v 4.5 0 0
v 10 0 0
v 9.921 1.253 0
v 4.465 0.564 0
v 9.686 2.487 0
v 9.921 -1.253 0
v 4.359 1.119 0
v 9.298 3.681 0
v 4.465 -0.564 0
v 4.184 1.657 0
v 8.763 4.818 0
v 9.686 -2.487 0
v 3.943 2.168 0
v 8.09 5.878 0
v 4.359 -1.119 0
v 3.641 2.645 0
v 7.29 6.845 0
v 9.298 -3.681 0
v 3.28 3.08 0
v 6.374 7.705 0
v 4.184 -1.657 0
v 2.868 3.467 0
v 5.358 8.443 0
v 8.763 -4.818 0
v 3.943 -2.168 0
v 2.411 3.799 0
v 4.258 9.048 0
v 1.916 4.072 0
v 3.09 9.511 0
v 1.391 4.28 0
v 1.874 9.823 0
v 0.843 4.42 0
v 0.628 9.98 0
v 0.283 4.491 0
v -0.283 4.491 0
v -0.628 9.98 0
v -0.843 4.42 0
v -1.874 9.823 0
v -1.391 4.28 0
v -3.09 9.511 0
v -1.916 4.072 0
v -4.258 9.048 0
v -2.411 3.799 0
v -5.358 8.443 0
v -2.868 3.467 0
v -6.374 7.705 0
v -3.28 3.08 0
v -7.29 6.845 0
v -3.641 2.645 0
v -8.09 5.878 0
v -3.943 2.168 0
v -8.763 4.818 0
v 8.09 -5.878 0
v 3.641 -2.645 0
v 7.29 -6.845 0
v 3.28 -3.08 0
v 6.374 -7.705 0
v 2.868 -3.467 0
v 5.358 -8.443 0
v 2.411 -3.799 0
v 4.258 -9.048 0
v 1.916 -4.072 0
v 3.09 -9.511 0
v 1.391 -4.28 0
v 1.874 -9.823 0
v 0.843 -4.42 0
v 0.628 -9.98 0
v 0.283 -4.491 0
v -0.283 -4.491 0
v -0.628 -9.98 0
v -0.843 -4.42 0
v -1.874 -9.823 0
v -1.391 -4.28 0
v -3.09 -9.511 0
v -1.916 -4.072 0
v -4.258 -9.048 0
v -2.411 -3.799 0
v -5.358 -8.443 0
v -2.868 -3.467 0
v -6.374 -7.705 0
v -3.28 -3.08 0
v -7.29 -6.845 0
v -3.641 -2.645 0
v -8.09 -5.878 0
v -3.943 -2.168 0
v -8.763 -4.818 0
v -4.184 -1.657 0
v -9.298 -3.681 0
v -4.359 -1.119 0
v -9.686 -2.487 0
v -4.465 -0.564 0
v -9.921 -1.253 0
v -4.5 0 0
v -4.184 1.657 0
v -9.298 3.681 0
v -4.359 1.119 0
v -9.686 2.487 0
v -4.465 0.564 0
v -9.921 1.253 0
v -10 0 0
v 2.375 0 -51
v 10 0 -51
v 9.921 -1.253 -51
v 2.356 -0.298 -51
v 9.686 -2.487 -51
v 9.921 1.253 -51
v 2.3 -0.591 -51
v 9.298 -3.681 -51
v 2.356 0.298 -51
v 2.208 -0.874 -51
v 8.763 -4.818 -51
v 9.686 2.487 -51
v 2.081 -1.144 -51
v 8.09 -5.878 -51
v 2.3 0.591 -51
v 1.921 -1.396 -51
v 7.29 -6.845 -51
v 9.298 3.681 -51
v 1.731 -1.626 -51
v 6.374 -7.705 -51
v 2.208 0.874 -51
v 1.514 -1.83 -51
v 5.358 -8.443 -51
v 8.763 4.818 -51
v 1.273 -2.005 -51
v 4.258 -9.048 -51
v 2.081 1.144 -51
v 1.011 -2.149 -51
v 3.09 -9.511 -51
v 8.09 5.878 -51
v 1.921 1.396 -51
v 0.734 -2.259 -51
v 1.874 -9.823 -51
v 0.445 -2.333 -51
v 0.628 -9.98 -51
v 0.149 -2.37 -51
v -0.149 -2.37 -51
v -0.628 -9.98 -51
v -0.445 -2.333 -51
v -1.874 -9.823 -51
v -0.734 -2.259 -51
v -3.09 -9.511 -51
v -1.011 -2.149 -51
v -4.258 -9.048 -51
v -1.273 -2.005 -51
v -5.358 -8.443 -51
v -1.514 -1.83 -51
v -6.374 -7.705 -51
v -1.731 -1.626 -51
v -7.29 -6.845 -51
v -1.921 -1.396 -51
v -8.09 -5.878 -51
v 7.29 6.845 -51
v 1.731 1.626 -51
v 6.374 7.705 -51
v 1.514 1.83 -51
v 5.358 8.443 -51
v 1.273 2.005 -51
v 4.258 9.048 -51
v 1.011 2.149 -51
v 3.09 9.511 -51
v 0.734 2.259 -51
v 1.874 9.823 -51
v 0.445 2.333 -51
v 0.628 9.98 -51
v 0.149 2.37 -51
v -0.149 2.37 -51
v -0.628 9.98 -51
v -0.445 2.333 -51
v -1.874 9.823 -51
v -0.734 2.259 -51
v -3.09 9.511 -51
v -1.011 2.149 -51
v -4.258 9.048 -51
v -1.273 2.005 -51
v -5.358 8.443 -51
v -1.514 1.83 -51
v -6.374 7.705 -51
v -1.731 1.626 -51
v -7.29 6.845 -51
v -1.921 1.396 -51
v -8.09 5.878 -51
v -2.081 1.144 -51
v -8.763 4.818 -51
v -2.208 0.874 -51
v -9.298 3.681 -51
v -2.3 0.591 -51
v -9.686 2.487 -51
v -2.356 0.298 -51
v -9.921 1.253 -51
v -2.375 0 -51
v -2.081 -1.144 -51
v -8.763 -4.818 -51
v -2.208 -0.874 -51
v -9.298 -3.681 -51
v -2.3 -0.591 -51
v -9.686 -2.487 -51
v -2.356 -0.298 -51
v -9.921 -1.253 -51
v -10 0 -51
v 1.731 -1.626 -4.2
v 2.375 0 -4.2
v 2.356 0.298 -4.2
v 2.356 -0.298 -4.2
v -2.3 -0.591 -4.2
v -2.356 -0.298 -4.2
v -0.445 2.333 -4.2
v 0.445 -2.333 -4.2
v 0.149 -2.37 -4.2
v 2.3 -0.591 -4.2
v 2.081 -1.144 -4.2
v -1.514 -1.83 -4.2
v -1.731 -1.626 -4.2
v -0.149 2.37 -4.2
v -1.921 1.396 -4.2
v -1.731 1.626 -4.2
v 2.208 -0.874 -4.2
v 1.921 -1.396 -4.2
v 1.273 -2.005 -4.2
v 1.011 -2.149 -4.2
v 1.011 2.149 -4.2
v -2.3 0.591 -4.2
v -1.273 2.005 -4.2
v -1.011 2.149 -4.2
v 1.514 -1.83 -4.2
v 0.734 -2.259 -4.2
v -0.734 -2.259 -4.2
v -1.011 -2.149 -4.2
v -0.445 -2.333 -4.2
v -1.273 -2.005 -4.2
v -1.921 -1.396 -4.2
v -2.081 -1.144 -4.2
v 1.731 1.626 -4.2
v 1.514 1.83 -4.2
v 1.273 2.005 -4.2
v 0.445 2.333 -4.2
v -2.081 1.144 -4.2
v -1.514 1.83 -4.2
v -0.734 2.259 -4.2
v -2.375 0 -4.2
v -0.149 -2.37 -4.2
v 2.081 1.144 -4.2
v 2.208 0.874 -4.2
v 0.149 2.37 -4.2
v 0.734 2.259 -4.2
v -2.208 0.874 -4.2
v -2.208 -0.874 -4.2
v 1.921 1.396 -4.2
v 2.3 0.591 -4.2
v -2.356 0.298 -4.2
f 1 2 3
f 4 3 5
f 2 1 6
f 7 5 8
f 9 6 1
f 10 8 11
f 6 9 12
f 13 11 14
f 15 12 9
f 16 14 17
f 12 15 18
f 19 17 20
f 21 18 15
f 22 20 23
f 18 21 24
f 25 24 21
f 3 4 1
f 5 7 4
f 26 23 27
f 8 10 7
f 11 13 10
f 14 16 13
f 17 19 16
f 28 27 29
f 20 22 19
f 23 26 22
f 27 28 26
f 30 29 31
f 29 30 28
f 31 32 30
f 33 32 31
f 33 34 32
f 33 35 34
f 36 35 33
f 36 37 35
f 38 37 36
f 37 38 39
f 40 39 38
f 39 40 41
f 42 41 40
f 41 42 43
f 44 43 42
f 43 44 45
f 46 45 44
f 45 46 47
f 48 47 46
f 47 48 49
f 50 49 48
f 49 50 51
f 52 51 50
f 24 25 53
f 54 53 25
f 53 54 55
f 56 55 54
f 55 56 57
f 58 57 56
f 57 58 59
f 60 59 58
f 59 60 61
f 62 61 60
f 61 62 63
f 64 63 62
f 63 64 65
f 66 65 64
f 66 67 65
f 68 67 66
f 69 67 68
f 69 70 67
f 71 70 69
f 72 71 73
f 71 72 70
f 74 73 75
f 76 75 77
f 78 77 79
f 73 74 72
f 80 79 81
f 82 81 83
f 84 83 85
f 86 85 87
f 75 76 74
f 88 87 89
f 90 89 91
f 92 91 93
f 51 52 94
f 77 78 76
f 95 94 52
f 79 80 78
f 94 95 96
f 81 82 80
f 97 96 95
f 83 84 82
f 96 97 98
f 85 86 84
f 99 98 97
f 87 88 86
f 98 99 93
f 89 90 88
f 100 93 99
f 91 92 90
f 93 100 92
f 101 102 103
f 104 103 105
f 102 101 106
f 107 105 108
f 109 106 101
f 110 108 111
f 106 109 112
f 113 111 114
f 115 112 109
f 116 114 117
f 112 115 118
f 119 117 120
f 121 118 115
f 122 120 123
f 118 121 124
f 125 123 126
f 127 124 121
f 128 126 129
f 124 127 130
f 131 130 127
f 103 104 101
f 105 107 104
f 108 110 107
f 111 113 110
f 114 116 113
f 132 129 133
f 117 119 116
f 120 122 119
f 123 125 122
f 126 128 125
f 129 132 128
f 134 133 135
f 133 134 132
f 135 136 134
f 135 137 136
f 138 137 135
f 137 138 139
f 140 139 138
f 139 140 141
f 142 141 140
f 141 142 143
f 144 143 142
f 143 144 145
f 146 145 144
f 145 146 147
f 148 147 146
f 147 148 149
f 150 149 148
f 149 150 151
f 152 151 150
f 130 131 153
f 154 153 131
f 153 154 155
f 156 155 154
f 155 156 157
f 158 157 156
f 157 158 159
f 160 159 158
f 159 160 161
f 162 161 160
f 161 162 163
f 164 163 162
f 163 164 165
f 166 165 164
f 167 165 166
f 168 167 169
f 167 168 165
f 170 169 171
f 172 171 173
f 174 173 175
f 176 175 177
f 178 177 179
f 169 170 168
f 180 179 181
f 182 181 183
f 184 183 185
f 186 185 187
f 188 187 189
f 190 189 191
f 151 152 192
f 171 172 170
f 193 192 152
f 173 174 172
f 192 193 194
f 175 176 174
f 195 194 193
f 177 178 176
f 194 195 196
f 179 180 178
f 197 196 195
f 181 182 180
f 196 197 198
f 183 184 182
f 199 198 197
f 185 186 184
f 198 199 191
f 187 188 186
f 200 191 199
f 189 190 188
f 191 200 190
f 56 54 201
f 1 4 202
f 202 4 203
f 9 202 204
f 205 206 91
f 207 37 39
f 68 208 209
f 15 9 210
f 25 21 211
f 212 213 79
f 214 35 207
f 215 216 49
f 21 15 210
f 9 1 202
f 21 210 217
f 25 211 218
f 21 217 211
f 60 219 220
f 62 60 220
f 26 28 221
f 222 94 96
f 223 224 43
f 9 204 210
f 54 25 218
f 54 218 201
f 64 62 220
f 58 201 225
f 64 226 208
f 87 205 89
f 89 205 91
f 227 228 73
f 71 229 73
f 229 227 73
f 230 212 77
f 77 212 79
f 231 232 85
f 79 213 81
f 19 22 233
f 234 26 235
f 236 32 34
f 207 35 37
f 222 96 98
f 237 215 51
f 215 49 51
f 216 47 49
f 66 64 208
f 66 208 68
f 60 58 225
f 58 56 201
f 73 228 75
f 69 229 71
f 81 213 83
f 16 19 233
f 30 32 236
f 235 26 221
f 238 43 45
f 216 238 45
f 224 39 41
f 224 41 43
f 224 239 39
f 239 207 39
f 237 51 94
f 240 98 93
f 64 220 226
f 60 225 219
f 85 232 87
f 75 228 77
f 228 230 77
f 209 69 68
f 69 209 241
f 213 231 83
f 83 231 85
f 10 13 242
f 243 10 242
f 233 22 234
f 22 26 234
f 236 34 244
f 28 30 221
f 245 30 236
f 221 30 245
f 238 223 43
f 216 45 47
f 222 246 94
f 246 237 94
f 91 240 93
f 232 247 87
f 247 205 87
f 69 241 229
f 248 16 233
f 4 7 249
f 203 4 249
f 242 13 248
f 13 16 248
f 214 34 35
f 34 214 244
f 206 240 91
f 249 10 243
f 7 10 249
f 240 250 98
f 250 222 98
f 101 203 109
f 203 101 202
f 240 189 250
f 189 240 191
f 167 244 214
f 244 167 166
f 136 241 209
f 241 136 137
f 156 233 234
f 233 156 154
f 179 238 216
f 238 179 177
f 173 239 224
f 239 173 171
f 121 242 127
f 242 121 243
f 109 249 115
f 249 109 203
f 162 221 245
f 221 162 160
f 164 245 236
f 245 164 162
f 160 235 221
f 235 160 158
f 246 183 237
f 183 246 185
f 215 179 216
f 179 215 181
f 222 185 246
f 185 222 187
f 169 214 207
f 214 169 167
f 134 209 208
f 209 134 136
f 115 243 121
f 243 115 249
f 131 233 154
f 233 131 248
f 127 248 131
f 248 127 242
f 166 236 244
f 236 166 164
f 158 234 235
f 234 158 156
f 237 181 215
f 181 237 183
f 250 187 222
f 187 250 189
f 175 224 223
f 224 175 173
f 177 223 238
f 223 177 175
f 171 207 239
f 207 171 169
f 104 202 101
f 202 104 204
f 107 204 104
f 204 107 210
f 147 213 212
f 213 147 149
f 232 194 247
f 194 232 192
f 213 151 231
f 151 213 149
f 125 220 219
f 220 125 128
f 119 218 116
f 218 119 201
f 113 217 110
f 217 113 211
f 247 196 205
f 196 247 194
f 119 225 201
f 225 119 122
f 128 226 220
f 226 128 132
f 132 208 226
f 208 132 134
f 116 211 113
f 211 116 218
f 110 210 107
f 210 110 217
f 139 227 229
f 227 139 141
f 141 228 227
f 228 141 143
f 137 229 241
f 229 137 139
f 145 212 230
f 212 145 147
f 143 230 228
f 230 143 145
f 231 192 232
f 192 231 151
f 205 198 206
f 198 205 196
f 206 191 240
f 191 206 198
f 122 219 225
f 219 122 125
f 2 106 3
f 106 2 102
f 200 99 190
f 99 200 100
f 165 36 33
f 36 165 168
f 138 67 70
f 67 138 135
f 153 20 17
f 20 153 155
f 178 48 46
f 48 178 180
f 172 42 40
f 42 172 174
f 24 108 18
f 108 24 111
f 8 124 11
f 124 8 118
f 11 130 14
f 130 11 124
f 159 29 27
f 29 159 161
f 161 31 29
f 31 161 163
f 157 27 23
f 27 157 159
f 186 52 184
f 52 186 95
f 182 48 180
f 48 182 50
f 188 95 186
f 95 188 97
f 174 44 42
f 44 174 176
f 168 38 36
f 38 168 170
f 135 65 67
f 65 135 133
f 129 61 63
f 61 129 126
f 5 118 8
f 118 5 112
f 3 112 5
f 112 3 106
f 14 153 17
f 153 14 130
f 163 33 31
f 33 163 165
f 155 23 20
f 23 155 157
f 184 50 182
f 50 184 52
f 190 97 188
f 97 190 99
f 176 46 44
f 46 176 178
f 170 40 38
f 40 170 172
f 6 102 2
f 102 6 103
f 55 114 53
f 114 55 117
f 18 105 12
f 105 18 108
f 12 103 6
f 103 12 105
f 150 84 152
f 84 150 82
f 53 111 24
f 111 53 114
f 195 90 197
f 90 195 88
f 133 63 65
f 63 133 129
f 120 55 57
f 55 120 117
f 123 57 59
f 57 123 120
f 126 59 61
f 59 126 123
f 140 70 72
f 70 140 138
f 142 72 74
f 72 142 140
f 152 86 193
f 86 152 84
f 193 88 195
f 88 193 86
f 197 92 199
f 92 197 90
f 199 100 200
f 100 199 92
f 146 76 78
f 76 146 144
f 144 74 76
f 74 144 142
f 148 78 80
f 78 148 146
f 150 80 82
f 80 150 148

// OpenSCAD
$fn = 50;


difference() {
	union() {
		translate(v = [0, 0, -51.0000000000]) {
			cylinder(h = 51, r = 10.0000000000);
		}
		cylinder(h = 0, r = 16.0000000000);
	}
	union() {
		translate(v = [0, 0, 0]) {
			rotate(a = [0, 0, 0]) {
				difference() {
					union() {
						#translate(v = [0, 0, -51.0000000000]) {
							cylinder(h = 51, r = 2.2500000000);
						}
						#translate(v = [0, 0, -4.2000000000]) {
							cylinder(h = 4.2000000000, r = 10.0000000000, r1 = 2.3750000000, r2 = 4.5000000000);
						}
						#translate(v = [0, 0, -51.0000000000]) {
							cylinder(h = 51, r = 2.3750000000);
						}
						#translate(v = [0, 0, -51.0000000000]) {
							cylinder(h = 51, r = 2.2500000000);
						}
					}
					union();
				}
			}
		}
	}
}
